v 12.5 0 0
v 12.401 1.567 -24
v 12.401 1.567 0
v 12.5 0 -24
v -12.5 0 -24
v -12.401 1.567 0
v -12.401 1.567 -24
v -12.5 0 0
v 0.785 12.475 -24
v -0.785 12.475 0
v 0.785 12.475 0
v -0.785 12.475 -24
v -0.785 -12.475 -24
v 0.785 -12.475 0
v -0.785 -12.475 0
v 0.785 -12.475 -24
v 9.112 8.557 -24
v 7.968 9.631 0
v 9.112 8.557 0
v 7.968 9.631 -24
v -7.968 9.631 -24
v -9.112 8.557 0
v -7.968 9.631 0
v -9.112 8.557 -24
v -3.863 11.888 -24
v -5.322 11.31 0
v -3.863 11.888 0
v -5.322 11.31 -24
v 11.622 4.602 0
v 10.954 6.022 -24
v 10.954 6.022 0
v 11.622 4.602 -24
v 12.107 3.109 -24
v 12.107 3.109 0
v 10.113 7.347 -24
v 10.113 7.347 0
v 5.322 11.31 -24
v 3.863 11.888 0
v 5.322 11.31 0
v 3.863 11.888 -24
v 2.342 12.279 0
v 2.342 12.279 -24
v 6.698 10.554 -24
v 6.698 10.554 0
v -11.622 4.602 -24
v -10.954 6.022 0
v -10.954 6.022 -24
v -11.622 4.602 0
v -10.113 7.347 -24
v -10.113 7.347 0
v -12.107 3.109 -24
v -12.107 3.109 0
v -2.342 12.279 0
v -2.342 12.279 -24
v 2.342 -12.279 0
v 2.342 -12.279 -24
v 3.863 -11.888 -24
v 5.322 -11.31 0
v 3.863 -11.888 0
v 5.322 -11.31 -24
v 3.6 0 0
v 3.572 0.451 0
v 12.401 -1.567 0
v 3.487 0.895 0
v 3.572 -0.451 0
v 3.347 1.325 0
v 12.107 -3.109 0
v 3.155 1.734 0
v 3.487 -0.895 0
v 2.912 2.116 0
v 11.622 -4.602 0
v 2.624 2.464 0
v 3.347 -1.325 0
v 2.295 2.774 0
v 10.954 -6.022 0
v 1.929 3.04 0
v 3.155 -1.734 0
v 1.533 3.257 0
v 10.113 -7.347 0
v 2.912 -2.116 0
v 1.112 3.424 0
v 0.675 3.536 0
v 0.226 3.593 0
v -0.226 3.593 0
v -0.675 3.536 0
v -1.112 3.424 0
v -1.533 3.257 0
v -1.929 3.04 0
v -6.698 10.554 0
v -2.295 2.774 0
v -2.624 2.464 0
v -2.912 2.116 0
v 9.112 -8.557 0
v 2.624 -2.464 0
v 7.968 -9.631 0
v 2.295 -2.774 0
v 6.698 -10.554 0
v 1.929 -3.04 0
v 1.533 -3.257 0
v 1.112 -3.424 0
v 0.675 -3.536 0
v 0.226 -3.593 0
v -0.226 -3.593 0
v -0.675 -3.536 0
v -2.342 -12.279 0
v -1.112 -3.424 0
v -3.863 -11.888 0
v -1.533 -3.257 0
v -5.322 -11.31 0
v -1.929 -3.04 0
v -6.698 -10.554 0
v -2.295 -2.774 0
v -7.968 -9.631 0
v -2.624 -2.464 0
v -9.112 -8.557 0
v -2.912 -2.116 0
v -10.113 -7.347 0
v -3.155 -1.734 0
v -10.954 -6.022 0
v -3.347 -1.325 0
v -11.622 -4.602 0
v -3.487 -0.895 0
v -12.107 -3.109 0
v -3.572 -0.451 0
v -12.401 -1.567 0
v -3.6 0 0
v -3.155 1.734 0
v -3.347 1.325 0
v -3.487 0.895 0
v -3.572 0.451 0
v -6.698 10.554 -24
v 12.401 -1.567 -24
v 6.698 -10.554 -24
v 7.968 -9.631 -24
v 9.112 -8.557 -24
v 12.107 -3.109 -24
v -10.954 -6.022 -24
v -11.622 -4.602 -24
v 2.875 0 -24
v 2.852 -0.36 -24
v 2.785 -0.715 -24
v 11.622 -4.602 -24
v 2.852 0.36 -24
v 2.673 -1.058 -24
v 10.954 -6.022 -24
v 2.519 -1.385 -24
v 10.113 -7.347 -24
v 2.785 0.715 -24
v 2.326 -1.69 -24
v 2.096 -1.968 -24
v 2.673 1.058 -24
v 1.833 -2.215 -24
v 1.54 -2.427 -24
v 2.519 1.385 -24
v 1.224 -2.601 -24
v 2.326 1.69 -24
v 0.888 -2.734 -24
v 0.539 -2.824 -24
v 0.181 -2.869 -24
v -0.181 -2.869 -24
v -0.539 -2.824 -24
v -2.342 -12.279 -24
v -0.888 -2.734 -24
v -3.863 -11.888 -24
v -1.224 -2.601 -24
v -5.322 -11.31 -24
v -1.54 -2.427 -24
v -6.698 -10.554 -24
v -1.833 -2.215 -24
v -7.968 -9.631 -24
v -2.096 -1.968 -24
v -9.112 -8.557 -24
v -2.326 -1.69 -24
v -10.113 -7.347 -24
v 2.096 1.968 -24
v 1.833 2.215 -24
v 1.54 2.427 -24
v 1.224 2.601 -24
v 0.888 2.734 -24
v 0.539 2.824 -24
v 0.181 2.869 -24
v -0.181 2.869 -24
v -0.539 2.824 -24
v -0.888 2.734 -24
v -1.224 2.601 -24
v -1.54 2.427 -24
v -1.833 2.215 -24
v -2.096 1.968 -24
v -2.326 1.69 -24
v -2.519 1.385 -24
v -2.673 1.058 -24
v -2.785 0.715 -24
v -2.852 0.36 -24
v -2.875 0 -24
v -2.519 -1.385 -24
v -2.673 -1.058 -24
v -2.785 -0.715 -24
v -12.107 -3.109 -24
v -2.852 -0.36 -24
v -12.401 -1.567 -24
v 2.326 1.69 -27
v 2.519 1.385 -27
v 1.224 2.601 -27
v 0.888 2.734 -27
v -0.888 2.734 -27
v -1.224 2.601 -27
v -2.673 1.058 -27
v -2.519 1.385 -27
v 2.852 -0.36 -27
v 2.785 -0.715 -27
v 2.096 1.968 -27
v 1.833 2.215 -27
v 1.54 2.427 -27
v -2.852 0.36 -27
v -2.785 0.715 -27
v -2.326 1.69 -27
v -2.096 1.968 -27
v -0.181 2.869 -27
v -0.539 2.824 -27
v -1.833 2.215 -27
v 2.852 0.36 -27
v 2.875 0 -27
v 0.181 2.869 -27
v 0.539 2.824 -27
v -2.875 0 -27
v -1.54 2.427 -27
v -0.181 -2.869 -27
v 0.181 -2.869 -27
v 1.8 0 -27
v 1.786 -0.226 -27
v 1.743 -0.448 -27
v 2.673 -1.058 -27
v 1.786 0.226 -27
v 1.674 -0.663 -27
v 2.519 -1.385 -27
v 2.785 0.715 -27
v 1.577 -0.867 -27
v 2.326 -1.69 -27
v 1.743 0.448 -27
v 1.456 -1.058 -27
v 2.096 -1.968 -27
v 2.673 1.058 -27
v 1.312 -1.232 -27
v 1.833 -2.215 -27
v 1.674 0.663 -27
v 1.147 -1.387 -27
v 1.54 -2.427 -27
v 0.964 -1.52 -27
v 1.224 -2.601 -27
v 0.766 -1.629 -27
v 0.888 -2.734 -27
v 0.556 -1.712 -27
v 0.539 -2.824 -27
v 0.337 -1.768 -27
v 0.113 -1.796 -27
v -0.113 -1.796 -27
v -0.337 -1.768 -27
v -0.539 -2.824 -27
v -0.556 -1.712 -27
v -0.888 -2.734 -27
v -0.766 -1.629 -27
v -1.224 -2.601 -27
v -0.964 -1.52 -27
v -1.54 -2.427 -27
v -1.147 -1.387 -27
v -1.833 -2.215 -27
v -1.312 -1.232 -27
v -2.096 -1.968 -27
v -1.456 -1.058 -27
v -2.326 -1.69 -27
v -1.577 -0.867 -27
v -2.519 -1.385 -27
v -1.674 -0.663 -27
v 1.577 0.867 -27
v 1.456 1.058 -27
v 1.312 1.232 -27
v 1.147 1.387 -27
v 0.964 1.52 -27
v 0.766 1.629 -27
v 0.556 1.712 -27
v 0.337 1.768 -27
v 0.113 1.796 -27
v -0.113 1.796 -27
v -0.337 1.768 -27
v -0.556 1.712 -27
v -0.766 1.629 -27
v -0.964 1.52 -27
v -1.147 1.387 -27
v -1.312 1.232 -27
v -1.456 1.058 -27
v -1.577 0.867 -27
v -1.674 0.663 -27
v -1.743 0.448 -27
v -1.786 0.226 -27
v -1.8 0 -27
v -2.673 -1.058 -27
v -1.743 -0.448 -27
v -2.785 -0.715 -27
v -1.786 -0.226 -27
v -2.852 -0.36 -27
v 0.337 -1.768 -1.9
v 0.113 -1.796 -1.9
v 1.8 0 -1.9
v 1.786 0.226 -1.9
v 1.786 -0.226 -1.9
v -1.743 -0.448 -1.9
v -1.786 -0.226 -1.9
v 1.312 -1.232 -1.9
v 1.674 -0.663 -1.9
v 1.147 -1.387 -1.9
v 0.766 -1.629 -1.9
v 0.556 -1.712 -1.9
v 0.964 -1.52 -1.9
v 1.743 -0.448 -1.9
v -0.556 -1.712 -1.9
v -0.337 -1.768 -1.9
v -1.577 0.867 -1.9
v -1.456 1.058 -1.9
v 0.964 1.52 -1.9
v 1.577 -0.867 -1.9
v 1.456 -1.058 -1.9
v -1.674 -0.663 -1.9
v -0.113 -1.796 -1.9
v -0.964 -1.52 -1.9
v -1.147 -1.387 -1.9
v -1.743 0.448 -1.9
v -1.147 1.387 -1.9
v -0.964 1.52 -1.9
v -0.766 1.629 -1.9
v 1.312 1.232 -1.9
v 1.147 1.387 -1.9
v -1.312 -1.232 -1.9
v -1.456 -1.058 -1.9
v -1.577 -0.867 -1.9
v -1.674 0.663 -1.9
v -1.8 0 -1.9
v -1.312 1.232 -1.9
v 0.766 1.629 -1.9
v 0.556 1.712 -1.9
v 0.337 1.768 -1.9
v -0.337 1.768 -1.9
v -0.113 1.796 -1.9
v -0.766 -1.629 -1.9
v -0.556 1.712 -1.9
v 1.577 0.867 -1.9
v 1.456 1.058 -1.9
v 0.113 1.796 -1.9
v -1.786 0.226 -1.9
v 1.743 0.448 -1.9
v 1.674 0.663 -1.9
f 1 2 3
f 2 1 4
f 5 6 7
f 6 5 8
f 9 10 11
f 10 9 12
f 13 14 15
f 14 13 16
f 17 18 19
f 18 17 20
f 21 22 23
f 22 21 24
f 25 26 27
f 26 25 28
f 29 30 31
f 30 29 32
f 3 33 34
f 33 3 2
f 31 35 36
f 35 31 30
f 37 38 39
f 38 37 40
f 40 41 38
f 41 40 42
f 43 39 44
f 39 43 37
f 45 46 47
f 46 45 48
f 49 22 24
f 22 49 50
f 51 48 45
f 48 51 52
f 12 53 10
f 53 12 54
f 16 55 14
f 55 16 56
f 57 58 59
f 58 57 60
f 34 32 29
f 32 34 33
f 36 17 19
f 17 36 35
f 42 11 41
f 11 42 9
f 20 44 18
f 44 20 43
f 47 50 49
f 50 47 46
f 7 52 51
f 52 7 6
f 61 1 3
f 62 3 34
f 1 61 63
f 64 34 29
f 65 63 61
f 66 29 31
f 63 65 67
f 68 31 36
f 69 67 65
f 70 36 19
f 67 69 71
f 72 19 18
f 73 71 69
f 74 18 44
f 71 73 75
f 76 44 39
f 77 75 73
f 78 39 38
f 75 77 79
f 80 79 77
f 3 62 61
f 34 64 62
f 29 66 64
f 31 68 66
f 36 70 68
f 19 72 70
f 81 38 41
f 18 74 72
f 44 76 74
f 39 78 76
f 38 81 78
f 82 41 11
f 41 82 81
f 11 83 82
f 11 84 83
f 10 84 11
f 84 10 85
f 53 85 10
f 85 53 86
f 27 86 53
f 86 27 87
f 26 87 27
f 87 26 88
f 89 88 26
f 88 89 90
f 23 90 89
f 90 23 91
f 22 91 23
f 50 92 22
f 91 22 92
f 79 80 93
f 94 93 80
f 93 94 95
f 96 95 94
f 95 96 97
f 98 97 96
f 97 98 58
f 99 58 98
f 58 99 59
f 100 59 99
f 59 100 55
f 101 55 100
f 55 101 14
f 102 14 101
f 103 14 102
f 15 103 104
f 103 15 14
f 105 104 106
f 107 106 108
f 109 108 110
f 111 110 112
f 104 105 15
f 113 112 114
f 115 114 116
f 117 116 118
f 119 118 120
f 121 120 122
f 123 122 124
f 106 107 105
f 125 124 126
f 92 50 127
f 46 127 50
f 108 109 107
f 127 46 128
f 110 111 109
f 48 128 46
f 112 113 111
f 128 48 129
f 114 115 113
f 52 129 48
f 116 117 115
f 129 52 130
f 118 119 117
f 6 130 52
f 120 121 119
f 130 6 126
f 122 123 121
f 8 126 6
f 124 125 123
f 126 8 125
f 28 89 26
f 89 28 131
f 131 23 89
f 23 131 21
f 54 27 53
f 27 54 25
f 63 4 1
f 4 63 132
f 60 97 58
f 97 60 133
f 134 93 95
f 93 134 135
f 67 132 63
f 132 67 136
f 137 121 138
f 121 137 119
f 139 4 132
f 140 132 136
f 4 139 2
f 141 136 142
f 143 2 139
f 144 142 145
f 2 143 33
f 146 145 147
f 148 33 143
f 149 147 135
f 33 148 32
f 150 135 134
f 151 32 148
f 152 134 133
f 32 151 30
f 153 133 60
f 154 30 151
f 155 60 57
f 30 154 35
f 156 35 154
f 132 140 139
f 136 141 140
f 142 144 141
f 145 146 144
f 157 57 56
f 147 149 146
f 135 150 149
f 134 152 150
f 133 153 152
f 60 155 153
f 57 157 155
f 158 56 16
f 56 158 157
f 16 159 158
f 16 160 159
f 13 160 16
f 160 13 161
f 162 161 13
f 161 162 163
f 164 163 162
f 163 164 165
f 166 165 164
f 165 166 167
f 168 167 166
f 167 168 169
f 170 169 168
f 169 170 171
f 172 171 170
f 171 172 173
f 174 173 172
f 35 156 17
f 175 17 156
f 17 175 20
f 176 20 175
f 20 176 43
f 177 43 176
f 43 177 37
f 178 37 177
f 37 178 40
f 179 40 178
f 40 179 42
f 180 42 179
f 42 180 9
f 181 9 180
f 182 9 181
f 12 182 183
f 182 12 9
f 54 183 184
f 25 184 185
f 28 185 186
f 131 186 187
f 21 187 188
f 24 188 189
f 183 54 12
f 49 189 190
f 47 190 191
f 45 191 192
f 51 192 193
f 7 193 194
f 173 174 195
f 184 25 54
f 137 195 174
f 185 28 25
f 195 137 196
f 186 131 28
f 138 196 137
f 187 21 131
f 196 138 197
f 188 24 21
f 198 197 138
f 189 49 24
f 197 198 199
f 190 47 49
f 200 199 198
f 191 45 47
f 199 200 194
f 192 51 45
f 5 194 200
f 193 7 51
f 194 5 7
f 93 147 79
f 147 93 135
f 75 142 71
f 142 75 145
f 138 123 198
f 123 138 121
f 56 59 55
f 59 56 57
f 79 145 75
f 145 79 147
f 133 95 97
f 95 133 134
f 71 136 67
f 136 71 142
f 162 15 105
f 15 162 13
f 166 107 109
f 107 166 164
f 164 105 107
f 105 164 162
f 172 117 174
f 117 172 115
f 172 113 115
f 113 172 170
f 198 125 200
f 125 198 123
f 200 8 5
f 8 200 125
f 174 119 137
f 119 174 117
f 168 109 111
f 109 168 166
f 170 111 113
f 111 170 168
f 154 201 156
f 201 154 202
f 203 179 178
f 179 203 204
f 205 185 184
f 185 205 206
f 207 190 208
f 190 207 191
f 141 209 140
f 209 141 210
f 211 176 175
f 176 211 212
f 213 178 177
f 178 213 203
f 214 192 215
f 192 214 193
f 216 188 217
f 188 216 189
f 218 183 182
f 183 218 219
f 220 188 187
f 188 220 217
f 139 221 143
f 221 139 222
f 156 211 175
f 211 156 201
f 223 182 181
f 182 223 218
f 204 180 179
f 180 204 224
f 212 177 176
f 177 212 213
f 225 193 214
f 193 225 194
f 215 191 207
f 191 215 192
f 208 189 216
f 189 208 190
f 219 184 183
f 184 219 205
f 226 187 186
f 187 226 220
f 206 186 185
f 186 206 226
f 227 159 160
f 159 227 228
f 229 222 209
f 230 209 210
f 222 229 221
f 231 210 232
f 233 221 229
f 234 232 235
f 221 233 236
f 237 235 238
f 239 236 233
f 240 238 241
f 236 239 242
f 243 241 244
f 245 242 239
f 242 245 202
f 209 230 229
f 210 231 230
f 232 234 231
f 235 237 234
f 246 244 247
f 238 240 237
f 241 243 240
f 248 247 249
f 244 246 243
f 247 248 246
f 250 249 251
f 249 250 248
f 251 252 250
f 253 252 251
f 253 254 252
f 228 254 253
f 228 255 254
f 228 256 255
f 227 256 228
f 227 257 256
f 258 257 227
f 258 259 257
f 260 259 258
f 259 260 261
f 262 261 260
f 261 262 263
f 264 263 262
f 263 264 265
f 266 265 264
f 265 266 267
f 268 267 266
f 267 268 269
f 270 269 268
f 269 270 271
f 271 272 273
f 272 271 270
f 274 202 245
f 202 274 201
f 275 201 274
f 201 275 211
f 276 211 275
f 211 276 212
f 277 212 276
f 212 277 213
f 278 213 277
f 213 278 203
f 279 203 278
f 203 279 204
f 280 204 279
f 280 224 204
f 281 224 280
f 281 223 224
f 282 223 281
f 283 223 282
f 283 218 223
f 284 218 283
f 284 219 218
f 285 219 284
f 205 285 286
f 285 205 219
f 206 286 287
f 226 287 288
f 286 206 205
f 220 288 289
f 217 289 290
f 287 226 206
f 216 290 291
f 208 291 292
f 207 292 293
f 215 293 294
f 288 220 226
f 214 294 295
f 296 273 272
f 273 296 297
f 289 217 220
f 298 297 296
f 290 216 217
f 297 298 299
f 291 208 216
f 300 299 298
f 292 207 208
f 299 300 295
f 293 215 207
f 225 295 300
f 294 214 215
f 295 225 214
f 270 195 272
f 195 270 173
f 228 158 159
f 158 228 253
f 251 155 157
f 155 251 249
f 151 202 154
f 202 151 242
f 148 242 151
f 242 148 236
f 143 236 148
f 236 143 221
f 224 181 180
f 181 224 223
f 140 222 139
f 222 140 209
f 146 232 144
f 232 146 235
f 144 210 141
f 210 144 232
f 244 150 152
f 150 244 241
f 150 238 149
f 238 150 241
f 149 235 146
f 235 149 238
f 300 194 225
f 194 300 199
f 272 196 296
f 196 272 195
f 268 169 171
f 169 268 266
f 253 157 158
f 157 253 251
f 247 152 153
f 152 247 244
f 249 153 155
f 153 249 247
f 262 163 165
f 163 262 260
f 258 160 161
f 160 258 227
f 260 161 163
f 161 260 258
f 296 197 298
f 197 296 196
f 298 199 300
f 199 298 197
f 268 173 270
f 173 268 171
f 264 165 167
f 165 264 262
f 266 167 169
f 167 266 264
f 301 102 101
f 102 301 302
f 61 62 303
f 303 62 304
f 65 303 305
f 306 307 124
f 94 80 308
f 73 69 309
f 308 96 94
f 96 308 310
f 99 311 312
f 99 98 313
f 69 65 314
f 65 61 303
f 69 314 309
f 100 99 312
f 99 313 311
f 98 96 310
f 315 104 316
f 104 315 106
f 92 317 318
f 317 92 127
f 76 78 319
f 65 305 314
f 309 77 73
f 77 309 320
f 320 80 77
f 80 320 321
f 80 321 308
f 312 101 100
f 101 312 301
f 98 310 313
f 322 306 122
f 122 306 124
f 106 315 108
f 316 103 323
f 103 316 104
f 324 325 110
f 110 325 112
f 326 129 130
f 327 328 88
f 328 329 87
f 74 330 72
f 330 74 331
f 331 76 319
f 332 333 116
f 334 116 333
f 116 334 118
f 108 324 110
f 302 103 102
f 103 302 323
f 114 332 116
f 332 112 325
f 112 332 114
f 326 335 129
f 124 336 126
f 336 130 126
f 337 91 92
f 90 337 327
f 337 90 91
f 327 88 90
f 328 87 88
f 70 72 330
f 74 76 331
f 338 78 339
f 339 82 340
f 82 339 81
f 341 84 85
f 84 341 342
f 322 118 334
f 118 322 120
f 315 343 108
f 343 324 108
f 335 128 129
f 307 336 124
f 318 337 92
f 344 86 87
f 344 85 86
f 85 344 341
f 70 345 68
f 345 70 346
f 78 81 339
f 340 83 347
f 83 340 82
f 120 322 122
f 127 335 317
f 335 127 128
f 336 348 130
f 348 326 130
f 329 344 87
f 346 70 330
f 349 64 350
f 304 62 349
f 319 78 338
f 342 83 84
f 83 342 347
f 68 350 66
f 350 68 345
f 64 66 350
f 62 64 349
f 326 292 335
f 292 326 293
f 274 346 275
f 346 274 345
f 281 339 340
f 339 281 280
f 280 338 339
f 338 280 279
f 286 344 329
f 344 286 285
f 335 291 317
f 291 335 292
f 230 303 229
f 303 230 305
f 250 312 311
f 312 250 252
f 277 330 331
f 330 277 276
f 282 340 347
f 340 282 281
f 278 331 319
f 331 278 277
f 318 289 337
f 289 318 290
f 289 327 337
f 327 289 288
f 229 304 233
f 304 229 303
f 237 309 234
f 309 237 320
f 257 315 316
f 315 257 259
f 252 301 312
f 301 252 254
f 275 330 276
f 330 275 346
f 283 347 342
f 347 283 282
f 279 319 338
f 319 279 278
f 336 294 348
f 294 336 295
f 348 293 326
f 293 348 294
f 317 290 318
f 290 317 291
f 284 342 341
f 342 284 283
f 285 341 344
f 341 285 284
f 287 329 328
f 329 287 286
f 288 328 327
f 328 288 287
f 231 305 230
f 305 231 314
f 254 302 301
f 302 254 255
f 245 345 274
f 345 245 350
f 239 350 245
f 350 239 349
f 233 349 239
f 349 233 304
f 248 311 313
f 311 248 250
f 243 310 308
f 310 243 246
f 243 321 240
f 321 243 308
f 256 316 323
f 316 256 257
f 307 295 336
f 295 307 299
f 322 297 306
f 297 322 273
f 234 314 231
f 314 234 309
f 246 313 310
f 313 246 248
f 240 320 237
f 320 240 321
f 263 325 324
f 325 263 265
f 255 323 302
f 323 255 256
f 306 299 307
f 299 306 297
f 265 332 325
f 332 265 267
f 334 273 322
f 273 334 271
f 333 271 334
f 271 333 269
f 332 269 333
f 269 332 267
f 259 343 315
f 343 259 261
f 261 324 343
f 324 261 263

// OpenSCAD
$fn = 50;


difference() {
	union() {
		translate(v = [0, 0, -24.0000000000]) {
			cylinder(h = 24, r = 12.5000000000);
		}
		#translate(v = [0, 0, -27.0000000000]) {
			cylinder(h = 27, r = 2.8750000000);
		}
	}
	union() {
		translate(v = [0, 0, 0]) {
			rotate(a = [0, 0, 0]) {
				difference() {
					union() {
						translate(v = [0, 0, -27.0000000000]) {
							cylinder(h = 27, r = 1.5000000000);
						}
						translate(v = [0, 0, -1.9000000000]) {
							cylinder(h = 1.9000000000, r1 = 1.8000000000, r2 = 3.6000000000);
						}
						translate(v = [0, 0, -27.0000000000]) {
							cylinder(h = 27, r = 1.8000000000);
						}
						translate(v = [0, 0, -27.0000000000]) {
							cylinder(h = 27, r = 1.5000000000);
						}
					}
					union();
				}
			}
		}
	}
}
